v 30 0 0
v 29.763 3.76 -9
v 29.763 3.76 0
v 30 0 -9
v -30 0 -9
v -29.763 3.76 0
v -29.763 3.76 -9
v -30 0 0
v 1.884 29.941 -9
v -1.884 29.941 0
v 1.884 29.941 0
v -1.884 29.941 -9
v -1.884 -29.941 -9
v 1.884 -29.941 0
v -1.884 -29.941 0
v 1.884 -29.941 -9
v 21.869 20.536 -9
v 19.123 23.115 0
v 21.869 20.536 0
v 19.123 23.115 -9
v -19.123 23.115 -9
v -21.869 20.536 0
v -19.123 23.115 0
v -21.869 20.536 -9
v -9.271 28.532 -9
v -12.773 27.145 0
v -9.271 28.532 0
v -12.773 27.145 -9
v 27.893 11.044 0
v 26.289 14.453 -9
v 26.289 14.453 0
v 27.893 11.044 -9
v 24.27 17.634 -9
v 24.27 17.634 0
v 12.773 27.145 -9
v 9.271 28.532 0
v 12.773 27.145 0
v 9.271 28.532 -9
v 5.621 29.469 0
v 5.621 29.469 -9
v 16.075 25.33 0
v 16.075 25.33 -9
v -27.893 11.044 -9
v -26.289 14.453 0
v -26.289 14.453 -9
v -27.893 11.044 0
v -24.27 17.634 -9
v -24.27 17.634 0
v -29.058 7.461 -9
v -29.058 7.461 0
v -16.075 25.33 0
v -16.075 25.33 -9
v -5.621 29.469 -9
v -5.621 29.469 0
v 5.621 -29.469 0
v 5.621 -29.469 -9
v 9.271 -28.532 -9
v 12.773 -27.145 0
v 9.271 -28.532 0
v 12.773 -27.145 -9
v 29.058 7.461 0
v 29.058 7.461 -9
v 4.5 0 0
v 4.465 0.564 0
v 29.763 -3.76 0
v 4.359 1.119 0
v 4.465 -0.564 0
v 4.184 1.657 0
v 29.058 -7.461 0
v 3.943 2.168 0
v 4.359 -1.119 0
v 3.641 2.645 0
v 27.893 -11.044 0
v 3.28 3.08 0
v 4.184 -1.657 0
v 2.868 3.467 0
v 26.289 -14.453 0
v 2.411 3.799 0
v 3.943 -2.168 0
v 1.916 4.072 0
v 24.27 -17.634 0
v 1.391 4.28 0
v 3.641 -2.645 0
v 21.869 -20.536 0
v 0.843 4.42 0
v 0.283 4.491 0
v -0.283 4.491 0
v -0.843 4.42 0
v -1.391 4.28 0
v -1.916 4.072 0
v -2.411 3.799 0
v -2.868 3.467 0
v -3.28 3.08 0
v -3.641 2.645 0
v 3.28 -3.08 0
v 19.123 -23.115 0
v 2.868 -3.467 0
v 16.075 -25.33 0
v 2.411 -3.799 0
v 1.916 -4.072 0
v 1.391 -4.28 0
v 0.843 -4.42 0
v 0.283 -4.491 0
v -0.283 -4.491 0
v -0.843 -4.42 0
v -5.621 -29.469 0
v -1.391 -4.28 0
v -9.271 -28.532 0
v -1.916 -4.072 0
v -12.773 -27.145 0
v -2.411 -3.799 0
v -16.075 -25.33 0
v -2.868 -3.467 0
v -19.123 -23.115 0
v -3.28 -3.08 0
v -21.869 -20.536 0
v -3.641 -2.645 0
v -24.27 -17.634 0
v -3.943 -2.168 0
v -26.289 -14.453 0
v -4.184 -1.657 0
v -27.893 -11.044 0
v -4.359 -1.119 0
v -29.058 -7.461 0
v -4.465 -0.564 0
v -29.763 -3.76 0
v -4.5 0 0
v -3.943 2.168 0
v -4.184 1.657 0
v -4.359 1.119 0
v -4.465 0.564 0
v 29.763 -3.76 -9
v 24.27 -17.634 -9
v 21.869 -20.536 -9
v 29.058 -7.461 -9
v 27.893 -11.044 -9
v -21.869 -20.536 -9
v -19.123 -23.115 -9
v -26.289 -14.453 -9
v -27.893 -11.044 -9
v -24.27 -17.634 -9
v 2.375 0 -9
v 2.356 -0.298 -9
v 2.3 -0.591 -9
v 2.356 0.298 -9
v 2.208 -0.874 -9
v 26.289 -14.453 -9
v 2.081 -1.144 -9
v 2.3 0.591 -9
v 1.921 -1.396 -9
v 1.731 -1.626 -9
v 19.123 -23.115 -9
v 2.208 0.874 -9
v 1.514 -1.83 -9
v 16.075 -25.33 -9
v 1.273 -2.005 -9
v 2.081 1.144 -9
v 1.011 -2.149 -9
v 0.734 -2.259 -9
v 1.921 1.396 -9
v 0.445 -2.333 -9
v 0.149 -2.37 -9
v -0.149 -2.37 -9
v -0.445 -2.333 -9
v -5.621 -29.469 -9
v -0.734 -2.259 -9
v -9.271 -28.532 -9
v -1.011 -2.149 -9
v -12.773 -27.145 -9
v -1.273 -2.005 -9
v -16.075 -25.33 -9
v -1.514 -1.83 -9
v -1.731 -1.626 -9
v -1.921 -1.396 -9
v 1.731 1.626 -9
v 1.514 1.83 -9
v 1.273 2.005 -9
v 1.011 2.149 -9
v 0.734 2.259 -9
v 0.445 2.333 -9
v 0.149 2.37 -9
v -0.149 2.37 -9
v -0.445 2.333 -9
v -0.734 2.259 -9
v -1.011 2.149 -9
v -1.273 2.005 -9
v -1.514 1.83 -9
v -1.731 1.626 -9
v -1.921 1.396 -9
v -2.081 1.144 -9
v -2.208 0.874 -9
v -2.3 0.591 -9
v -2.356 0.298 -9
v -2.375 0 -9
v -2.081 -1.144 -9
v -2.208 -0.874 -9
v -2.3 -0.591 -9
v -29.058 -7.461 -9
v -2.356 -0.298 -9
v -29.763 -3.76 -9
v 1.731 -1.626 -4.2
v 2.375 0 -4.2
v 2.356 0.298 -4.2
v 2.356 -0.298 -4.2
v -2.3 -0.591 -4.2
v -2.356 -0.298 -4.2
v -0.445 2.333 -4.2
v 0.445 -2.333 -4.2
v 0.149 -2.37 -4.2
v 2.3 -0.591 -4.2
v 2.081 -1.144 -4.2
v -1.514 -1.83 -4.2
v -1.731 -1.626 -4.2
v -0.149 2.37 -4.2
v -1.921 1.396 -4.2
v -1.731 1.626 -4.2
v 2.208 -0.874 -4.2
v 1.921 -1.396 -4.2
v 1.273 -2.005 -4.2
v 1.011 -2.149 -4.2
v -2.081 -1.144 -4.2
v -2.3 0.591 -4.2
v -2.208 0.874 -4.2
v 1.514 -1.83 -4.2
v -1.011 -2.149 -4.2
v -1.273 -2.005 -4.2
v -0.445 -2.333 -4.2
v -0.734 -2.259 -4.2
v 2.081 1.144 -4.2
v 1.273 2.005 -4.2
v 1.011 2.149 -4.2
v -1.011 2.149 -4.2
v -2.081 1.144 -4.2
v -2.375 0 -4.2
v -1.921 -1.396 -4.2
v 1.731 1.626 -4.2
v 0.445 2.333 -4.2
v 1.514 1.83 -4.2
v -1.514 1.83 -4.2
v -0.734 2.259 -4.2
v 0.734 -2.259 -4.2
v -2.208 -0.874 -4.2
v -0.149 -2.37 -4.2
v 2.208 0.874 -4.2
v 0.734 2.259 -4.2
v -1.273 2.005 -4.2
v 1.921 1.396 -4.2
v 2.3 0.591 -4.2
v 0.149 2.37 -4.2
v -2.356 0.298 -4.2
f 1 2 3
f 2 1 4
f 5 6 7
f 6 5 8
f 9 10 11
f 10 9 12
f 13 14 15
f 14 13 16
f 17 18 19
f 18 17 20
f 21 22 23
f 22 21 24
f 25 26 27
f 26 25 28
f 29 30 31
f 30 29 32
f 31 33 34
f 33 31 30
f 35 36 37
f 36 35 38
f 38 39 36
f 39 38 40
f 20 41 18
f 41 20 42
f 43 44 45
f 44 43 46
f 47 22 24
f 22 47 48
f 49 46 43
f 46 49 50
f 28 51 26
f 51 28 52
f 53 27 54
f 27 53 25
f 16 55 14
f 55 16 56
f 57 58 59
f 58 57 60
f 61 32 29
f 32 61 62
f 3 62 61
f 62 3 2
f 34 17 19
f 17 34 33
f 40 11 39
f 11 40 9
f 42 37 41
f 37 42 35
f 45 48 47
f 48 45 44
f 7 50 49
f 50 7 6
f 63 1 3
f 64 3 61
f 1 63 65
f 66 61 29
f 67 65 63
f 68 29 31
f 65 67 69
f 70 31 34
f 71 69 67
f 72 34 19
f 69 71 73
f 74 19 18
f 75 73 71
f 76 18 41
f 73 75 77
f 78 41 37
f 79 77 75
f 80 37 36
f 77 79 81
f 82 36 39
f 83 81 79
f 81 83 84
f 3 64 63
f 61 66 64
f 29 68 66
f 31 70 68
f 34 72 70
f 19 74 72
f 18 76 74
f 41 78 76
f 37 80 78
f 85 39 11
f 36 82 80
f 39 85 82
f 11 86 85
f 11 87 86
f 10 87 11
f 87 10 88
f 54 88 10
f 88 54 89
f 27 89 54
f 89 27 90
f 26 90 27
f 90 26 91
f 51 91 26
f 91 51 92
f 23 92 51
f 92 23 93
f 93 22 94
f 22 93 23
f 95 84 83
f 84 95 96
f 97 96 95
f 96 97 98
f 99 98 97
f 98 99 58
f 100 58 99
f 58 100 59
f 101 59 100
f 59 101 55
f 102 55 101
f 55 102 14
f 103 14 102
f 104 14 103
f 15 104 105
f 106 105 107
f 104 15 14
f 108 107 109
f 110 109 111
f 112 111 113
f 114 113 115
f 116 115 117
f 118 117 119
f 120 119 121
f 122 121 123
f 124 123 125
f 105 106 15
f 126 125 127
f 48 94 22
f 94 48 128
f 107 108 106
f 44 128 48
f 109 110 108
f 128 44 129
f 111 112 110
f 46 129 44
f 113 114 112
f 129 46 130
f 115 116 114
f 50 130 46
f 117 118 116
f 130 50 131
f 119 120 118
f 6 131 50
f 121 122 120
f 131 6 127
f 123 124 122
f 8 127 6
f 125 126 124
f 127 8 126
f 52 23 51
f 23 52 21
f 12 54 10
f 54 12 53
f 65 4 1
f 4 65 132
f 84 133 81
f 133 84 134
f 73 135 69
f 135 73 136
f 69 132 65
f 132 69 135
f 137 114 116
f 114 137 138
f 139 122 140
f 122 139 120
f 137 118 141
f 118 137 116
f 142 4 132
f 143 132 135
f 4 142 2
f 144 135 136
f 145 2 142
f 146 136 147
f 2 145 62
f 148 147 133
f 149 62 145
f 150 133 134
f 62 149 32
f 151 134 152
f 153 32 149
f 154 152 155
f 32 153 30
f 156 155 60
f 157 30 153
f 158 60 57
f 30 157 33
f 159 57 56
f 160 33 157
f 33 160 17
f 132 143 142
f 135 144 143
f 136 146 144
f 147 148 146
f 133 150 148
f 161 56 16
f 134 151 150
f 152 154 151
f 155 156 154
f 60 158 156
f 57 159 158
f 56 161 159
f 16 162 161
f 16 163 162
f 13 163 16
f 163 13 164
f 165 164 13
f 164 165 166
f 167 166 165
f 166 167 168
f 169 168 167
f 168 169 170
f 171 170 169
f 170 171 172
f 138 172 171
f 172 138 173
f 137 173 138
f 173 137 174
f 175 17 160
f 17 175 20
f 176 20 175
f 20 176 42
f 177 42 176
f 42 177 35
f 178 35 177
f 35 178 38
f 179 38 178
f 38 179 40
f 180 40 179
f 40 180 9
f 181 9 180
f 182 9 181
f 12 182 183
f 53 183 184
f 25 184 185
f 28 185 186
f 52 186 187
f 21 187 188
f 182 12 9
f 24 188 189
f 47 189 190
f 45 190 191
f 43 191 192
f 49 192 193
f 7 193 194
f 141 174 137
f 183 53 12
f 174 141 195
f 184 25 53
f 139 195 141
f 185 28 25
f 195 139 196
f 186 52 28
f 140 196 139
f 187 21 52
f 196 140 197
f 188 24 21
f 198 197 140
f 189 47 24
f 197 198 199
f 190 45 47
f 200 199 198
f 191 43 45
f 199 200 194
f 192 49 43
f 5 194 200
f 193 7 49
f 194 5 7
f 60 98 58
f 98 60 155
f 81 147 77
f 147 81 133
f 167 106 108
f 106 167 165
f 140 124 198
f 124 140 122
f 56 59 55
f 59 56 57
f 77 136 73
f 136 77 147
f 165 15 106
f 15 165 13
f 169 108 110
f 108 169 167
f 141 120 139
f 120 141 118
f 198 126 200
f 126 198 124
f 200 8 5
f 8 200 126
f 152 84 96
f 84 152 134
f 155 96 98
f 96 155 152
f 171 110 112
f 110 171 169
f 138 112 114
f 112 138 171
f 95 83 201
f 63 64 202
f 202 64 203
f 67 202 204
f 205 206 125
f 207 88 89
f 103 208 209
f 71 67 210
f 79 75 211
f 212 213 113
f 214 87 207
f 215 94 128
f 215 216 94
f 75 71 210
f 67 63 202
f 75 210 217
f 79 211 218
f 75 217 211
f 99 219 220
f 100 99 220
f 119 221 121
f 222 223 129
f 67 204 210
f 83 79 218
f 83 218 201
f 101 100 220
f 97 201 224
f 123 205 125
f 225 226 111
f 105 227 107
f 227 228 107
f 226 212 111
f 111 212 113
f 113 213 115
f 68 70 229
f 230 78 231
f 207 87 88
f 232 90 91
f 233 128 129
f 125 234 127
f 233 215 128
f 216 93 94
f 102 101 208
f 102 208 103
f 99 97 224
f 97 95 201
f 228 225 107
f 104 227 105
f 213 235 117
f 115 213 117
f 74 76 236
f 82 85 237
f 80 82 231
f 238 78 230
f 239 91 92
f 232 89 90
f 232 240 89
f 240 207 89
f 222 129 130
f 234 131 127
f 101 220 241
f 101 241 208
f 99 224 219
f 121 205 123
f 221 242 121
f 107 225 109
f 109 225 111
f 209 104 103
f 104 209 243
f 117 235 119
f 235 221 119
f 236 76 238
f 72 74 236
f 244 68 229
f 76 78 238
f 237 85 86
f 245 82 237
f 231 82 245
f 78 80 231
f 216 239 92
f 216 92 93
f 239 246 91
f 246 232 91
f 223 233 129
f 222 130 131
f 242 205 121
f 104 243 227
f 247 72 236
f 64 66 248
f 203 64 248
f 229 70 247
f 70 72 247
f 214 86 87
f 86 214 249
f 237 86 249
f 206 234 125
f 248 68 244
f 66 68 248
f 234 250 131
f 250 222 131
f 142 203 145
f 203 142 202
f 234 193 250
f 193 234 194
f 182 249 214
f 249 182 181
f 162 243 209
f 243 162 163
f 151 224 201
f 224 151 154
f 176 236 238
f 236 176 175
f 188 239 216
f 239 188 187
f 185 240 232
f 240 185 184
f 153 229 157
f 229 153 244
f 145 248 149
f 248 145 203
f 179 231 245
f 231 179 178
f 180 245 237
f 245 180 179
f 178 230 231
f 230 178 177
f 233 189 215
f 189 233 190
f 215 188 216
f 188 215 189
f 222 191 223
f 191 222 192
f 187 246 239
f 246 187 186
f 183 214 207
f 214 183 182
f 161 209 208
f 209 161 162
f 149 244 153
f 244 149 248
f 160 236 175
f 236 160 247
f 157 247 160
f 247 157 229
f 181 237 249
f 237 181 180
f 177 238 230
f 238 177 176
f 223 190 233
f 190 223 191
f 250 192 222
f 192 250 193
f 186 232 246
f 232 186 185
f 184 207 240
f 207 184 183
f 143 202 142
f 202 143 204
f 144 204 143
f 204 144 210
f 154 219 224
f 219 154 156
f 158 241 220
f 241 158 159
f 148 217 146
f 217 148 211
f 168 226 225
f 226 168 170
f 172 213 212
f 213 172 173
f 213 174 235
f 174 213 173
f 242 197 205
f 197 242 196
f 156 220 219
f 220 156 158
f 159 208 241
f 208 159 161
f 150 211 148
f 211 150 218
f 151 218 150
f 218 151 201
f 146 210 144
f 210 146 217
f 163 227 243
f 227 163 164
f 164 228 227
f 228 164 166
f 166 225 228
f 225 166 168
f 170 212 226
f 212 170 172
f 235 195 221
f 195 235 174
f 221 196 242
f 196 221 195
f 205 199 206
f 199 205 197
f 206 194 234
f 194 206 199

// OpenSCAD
$fn = 50;


difference() {
	union() {
		translate(v = [0, 0, -9.0000000000]) {
			cylinder(h = 9, r = 30.0000000000);
		}
		translate(v = [0, 0, -9.0000000000]) {
			cylinder(h = 9, r = 2.8750000000);
		}
	}
	union() {
		translate(v = [0, 0, 0]) {
			rotate(a = [0, 0, 0]) {
				difference() {
					union() {
						translate(v = [0, 0, -9.0000000000]) {
							cylinder(h = 9, r = 2.2500000000);
						}
						translate(v = [0, 0, -4.2000000000]) {
							cylinder(h = 4.2000000000, r1 = 2.3750000000, r2 = 4.5000000000);
						}
						translate(v = [0, 0, -9.0000000000]) {
							cylinder(h = 9, r = 2.3750000000);
						}
						translate(v = [0, 0, -9.0000000000]) {
							cylinder(h = 9, r = 2.2500000000);
						}
					}
					union();
				}
			}
		}
	}
}
